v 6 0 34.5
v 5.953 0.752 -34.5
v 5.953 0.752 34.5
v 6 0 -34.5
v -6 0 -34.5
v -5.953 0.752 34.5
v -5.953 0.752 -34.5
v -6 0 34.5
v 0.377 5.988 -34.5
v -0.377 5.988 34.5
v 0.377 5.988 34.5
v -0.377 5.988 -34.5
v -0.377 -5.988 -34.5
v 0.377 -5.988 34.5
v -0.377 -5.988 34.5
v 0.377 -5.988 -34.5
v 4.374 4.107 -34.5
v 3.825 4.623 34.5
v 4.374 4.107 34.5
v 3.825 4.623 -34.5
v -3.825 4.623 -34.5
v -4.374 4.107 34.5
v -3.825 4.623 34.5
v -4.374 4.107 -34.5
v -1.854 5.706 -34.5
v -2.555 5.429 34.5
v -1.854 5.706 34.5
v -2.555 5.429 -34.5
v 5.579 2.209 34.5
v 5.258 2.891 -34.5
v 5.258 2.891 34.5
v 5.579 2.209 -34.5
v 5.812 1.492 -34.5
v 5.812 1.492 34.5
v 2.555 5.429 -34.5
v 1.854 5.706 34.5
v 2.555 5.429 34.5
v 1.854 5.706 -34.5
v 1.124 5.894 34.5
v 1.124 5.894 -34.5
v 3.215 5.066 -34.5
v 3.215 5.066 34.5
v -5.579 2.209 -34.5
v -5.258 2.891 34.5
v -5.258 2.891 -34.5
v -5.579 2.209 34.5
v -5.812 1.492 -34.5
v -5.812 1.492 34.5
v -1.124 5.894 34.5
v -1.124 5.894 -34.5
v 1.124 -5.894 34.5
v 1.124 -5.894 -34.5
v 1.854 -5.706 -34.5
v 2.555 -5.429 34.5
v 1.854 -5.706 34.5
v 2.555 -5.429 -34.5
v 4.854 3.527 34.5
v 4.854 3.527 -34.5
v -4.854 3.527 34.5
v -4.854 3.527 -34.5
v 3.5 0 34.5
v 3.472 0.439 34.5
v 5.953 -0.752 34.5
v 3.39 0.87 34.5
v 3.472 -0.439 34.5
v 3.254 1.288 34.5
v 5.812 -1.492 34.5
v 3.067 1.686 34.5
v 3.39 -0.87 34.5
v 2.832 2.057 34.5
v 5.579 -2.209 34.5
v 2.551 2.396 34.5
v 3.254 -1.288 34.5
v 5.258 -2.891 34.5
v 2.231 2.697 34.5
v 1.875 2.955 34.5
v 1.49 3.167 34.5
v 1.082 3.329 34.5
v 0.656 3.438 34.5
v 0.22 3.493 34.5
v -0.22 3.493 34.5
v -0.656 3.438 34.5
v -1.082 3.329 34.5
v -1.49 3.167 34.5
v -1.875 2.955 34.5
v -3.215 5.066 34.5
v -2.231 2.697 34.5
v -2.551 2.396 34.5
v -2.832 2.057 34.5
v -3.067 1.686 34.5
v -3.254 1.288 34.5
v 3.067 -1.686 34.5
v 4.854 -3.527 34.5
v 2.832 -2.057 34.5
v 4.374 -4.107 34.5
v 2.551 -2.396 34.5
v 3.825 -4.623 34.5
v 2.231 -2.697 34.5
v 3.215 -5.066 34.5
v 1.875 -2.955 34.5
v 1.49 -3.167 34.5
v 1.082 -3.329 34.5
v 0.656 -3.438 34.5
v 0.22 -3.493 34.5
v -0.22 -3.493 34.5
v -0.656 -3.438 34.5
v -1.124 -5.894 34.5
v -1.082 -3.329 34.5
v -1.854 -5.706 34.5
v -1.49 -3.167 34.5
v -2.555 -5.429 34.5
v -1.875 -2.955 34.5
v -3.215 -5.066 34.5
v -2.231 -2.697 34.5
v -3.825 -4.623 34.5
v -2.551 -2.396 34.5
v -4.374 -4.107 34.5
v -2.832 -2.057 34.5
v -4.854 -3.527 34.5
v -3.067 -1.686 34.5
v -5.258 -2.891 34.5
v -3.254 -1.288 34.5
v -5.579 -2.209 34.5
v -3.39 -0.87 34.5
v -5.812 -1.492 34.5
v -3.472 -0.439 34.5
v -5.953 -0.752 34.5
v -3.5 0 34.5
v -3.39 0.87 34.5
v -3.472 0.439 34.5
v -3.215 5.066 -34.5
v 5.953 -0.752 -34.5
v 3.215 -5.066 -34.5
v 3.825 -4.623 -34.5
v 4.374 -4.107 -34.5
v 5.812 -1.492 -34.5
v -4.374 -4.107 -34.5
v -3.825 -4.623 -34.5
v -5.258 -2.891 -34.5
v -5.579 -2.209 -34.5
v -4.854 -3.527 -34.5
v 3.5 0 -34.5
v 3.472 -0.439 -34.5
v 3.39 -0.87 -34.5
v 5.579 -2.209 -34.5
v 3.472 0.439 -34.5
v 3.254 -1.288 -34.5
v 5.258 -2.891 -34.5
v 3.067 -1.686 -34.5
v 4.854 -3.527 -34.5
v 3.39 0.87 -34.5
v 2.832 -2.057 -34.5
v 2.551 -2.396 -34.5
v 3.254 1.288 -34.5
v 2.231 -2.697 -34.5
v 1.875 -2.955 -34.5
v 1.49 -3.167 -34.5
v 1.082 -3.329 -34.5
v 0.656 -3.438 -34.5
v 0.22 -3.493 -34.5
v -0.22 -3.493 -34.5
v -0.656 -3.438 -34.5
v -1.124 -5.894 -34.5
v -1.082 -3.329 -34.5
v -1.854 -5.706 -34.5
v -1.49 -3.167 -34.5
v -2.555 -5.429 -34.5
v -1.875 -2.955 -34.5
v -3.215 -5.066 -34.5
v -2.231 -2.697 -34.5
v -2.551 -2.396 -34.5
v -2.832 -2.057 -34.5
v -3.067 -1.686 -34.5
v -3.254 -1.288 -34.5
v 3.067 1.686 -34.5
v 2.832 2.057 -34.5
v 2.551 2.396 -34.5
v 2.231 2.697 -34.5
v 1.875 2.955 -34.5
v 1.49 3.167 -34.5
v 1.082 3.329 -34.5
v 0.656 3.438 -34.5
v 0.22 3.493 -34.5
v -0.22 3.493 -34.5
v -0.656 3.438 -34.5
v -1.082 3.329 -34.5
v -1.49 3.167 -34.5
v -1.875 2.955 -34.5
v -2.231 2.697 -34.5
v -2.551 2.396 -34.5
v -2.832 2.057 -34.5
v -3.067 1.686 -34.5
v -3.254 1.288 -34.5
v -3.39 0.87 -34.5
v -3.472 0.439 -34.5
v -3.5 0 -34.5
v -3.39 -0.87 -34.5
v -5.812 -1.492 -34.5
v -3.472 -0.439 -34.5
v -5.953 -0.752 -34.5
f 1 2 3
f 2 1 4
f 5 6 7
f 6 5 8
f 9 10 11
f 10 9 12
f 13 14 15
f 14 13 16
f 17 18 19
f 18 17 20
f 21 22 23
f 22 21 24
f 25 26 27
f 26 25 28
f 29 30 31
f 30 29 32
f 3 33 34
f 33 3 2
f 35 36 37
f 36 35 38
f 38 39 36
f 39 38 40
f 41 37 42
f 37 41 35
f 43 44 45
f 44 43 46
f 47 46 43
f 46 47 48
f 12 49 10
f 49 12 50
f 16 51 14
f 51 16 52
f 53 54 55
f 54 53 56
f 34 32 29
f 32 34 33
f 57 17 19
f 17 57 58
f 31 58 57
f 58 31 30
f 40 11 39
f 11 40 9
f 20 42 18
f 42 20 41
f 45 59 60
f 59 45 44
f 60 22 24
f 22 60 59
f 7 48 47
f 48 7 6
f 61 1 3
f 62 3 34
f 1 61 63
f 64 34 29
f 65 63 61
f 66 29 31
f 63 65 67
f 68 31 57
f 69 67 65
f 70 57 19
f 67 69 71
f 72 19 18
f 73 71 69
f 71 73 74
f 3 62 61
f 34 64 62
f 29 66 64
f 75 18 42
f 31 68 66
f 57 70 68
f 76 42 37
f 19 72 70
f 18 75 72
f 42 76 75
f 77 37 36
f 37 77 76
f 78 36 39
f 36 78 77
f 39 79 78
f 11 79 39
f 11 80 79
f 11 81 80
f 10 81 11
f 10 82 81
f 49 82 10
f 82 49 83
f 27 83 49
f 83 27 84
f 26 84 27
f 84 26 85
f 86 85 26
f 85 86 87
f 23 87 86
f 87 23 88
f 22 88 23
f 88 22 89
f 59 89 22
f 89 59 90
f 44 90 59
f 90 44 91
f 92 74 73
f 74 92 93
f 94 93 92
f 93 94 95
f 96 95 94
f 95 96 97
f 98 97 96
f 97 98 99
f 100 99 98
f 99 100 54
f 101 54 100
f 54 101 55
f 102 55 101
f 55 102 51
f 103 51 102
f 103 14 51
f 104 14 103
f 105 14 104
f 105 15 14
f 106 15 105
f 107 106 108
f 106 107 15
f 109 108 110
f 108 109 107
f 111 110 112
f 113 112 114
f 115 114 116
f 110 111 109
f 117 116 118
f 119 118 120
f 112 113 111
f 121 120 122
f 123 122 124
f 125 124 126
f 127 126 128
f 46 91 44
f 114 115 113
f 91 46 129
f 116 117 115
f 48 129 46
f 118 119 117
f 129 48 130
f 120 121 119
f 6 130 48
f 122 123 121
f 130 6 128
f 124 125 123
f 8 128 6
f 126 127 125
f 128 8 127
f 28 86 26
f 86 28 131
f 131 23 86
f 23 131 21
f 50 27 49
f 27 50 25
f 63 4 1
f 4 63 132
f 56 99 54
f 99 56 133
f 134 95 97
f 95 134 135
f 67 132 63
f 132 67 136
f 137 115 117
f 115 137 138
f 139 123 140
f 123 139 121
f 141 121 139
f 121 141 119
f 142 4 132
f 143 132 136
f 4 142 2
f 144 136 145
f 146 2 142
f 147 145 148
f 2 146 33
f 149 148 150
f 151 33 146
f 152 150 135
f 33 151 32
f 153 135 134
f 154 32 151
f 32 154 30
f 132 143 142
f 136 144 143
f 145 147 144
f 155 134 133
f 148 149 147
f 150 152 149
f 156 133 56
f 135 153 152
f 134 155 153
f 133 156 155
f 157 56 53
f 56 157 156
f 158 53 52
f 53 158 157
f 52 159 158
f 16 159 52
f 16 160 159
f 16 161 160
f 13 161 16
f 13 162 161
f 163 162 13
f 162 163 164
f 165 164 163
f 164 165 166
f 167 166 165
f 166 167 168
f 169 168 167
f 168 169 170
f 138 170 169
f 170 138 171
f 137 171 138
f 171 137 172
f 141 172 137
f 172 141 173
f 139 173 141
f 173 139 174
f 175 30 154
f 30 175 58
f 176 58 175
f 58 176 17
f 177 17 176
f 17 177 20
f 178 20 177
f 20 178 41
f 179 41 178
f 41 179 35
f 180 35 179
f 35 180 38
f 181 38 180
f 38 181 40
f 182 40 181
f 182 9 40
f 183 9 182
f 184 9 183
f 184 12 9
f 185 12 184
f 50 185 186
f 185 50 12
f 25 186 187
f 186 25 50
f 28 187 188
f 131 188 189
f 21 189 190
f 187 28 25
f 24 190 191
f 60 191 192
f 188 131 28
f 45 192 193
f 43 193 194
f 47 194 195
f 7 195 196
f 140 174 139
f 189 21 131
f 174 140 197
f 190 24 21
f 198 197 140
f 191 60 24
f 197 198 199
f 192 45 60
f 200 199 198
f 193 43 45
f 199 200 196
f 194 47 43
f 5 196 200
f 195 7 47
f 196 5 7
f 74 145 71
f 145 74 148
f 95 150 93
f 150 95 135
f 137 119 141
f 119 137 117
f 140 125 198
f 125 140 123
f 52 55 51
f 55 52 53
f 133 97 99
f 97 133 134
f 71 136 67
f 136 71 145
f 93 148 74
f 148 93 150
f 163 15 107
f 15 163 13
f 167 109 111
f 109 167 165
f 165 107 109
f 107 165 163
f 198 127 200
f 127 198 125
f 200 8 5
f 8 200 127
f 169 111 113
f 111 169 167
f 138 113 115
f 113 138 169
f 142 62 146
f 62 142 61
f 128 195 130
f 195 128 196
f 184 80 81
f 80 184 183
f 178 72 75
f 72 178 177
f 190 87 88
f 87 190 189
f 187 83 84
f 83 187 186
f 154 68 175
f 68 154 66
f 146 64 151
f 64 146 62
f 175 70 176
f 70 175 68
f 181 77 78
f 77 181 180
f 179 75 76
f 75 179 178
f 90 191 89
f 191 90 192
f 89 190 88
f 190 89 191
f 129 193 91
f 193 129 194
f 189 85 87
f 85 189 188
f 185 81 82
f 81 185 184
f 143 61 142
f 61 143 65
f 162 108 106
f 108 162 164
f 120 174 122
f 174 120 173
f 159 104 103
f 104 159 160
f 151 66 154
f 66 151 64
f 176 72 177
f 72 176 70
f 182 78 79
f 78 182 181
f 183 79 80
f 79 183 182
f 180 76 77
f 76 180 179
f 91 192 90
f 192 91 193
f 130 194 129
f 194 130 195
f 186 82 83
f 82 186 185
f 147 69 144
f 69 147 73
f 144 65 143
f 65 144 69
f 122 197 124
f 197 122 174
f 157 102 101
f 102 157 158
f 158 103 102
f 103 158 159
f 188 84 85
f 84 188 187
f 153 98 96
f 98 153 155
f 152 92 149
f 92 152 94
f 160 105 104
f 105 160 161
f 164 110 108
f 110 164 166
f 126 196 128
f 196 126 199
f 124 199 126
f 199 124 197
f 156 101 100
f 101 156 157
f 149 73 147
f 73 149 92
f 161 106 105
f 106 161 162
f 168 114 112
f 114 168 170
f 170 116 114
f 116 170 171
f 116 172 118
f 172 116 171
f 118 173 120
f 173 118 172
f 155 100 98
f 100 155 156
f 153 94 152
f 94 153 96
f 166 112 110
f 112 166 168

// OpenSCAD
$fn = 50;


difference() {
	union() {
		translate(v = [0, 0, -34.5000000000]) {
			cylinder(h = 69, r = 6.0000000000);
		}
	}
	union() {
		translate(v = [0, 0, -100.0000000000]) {
			cylinder(h = 200, r = 3.5000000000);
		}
	}
}
